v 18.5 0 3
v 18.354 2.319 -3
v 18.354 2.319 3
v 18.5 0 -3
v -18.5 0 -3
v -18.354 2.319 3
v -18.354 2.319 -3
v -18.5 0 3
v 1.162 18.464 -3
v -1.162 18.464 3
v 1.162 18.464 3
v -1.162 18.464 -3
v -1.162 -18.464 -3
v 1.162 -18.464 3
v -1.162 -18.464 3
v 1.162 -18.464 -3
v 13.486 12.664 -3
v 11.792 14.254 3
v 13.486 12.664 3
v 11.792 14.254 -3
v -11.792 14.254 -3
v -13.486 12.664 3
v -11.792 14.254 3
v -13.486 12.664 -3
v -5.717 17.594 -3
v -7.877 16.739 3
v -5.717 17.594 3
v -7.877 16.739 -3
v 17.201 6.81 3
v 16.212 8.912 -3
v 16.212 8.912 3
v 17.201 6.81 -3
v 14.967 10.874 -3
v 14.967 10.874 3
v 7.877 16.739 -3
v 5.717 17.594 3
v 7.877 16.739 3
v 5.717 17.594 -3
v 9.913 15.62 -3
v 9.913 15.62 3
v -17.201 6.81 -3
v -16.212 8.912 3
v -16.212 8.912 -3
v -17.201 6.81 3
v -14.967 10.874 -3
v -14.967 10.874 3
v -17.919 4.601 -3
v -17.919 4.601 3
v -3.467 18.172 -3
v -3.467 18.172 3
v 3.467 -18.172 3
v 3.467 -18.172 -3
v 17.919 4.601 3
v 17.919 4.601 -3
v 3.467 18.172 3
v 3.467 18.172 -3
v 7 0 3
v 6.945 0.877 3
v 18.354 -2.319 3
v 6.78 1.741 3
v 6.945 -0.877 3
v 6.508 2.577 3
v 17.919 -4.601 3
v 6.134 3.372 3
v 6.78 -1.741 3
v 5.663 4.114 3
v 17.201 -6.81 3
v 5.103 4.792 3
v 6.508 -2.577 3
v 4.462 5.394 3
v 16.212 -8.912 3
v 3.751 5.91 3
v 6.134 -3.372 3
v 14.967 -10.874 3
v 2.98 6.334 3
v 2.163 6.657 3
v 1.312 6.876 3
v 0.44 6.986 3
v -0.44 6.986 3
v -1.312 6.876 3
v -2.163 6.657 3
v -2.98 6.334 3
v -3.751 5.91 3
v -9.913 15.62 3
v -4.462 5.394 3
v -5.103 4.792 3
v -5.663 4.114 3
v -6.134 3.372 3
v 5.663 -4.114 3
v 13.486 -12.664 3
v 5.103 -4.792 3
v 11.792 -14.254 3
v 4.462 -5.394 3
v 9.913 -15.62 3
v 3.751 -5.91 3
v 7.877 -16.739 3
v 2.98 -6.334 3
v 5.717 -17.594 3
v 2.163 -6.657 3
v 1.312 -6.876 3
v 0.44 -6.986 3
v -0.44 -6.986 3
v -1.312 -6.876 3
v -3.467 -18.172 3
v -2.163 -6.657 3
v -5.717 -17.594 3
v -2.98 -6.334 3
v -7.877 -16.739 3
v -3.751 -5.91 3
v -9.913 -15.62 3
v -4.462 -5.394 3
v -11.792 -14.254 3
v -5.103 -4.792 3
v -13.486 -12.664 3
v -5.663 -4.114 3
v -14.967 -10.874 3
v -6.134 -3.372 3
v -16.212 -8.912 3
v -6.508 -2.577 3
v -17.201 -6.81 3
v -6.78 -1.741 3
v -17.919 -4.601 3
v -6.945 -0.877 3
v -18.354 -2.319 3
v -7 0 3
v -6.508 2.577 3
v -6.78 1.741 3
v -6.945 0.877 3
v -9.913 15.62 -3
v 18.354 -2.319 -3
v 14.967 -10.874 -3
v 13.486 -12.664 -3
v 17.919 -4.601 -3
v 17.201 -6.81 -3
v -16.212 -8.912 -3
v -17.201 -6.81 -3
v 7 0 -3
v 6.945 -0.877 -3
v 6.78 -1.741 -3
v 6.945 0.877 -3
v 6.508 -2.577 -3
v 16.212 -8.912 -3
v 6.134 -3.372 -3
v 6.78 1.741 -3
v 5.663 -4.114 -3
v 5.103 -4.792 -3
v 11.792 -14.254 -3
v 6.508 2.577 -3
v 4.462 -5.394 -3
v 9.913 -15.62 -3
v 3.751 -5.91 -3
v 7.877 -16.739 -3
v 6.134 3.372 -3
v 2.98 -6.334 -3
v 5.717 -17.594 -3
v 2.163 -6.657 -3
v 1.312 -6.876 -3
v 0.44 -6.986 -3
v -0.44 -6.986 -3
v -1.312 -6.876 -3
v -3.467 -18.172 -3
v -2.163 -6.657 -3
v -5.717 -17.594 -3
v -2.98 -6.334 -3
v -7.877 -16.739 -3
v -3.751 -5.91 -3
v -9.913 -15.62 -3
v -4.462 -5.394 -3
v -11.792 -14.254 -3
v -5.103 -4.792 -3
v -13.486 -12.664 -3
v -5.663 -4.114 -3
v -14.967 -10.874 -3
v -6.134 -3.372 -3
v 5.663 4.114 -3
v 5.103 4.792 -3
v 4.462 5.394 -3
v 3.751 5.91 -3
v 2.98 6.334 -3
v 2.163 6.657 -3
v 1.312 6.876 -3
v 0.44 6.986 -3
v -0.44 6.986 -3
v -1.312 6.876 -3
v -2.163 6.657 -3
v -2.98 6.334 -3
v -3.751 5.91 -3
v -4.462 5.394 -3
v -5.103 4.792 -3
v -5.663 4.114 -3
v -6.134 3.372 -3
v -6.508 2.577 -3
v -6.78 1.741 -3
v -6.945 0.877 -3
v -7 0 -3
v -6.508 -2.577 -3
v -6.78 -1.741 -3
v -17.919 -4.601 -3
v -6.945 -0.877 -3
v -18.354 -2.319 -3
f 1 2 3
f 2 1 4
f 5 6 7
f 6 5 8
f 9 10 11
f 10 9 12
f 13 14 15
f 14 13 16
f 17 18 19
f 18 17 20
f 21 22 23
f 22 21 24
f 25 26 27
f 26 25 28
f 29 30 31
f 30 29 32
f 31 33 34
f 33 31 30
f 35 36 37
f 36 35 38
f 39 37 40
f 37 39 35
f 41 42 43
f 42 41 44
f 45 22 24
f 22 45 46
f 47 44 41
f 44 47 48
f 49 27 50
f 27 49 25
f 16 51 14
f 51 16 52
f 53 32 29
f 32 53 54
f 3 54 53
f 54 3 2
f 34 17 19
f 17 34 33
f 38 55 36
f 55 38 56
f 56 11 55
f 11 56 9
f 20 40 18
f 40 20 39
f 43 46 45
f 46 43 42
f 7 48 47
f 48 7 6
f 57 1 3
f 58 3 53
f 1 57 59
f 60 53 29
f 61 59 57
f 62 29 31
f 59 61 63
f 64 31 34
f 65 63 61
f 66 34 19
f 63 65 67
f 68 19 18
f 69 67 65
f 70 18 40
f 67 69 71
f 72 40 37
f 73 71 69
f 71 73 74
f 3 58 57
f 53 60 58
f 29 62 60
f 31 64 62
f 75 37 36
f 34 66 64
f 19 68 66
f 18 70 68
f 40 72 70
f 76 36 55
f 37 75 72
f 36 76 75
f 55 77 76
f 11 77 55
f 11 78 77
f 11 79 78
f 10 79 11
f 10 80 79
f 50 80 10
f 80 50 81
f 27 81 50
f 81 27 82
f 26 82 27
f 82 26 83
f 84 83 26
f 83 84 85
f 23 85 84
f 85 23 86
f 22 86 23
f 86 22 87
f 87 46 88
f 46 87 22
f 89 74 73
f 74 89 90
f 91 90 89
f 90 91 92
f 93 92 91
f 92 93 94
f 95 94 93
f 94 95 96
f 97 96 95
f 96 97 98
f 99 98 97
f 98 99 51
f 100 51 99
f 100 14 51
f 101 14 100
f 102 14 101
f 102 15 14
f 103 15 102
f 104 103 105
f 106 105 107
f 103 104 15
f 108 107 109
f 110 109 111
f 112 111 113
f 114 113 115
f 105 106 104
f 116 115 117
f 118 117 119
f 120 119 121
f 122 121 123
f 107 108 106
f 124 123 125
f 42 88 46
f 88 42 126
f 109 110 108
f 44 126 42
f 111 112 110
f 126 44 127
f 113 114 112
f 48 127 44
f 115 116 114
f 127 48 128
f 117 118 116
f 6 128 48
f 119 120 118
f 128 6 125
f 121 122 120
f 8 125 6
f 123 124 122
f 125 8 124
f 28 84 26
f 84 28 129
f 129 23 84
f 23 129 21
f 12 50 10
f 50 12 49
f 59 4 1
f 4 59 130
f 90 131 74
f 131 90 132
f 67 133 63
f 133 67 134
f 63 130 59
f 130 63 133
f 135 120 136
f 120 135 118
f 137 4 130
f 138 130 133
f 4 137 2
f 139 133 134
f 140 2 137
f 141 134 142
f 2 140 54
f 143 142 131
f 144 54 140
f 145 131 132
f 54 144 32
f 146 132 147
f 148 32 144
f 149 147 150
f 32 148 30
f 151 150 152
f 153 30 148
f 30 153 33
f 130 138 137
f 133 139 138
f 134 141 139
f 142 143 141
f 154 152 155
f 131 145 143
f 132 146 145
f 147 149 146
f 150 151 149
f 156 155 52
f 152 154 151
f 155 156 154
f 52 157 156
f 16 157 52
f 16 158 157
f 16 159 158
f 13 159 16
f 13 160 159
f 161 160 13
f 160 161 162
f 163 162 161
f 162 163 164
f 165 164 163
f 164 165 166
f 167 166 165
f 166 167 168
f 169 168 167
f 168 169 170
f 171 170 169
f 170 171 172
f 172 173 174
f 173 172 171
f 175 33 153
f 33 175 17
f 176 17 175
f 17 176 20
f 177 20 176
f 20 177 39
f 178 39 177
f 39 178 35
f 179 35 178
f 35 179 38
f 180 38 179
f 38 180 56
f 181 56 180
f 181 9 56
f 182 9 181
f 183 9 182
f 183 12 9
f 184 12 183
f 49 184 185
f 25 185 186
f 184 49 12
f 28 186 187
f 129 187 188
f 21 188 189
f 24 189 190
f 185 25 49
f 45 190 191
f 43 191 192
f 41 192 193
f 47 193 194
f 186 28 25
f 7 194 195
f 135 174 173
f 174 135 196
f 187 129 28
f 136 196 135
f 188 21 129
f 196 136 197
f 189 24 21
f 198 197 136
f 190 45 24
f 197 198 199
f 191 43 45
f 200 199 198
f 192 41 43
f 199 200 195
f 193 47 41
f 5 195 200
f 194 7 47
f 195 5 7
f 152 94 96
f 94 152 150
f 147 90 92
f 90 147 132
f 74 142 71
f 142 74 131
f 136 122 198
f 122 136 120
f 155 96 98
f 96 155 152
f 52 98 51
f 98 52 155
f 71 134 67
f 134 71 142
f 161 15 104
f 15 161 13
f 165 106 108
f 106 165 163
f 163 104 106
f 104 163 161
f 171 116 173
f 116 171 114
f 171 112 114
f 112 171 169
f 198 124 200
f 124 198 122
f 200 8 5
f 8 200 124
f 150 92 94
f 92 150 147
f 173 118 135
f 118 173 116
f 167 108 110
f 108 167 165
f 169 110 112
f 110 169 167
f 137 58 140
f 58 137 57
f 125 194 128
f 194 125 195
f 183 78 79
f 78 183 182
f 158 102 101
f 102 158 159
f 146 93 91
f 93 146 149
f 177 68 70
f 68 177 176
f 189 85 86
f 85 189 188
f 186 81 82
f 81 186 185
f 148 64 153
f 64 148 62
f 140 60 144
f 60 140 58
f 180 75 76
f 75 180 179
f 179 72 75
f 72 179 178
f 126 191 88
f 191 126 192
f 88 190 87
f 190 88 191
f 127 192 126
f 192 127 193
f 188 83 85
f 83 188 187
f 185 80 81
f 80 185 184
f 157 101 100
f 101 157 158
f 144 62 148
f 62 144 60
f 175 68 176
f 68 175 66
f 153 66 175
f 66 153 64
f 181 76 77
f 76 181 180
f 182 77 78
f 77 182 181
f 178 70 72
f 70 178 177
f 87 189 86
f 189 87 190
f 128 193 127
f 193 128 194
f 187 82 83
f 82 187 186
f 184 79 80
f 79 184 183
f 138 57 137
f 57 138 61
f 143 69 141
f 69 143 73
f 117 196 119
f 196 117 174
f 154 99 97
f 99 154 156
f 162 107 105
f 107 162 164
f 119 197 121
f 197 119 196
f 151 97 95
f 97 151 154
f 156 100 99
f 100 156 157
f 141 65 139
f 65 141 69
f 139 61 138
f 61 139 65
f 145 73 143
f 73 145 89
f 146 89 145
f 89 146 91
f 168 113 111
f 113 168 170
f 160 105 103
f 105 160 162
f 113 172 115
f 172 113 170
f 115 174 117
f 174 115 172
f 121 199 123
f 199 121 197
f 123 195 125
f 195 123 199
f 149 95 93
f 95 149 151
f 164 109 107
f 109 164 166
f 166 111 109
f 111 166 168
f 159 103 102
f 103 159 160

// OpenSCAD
$fn = 50;


difference() {
	union() {
		translate(v = [0, 0, -3.0000000000]) {
			cylinder(h = 6, r = 18.5000000000);
		}
	}
	union() {
		translate(v = [0, 0, -100.0000000000]) {
			cylinder(h = 200, r = 7);
		}
	}
}
